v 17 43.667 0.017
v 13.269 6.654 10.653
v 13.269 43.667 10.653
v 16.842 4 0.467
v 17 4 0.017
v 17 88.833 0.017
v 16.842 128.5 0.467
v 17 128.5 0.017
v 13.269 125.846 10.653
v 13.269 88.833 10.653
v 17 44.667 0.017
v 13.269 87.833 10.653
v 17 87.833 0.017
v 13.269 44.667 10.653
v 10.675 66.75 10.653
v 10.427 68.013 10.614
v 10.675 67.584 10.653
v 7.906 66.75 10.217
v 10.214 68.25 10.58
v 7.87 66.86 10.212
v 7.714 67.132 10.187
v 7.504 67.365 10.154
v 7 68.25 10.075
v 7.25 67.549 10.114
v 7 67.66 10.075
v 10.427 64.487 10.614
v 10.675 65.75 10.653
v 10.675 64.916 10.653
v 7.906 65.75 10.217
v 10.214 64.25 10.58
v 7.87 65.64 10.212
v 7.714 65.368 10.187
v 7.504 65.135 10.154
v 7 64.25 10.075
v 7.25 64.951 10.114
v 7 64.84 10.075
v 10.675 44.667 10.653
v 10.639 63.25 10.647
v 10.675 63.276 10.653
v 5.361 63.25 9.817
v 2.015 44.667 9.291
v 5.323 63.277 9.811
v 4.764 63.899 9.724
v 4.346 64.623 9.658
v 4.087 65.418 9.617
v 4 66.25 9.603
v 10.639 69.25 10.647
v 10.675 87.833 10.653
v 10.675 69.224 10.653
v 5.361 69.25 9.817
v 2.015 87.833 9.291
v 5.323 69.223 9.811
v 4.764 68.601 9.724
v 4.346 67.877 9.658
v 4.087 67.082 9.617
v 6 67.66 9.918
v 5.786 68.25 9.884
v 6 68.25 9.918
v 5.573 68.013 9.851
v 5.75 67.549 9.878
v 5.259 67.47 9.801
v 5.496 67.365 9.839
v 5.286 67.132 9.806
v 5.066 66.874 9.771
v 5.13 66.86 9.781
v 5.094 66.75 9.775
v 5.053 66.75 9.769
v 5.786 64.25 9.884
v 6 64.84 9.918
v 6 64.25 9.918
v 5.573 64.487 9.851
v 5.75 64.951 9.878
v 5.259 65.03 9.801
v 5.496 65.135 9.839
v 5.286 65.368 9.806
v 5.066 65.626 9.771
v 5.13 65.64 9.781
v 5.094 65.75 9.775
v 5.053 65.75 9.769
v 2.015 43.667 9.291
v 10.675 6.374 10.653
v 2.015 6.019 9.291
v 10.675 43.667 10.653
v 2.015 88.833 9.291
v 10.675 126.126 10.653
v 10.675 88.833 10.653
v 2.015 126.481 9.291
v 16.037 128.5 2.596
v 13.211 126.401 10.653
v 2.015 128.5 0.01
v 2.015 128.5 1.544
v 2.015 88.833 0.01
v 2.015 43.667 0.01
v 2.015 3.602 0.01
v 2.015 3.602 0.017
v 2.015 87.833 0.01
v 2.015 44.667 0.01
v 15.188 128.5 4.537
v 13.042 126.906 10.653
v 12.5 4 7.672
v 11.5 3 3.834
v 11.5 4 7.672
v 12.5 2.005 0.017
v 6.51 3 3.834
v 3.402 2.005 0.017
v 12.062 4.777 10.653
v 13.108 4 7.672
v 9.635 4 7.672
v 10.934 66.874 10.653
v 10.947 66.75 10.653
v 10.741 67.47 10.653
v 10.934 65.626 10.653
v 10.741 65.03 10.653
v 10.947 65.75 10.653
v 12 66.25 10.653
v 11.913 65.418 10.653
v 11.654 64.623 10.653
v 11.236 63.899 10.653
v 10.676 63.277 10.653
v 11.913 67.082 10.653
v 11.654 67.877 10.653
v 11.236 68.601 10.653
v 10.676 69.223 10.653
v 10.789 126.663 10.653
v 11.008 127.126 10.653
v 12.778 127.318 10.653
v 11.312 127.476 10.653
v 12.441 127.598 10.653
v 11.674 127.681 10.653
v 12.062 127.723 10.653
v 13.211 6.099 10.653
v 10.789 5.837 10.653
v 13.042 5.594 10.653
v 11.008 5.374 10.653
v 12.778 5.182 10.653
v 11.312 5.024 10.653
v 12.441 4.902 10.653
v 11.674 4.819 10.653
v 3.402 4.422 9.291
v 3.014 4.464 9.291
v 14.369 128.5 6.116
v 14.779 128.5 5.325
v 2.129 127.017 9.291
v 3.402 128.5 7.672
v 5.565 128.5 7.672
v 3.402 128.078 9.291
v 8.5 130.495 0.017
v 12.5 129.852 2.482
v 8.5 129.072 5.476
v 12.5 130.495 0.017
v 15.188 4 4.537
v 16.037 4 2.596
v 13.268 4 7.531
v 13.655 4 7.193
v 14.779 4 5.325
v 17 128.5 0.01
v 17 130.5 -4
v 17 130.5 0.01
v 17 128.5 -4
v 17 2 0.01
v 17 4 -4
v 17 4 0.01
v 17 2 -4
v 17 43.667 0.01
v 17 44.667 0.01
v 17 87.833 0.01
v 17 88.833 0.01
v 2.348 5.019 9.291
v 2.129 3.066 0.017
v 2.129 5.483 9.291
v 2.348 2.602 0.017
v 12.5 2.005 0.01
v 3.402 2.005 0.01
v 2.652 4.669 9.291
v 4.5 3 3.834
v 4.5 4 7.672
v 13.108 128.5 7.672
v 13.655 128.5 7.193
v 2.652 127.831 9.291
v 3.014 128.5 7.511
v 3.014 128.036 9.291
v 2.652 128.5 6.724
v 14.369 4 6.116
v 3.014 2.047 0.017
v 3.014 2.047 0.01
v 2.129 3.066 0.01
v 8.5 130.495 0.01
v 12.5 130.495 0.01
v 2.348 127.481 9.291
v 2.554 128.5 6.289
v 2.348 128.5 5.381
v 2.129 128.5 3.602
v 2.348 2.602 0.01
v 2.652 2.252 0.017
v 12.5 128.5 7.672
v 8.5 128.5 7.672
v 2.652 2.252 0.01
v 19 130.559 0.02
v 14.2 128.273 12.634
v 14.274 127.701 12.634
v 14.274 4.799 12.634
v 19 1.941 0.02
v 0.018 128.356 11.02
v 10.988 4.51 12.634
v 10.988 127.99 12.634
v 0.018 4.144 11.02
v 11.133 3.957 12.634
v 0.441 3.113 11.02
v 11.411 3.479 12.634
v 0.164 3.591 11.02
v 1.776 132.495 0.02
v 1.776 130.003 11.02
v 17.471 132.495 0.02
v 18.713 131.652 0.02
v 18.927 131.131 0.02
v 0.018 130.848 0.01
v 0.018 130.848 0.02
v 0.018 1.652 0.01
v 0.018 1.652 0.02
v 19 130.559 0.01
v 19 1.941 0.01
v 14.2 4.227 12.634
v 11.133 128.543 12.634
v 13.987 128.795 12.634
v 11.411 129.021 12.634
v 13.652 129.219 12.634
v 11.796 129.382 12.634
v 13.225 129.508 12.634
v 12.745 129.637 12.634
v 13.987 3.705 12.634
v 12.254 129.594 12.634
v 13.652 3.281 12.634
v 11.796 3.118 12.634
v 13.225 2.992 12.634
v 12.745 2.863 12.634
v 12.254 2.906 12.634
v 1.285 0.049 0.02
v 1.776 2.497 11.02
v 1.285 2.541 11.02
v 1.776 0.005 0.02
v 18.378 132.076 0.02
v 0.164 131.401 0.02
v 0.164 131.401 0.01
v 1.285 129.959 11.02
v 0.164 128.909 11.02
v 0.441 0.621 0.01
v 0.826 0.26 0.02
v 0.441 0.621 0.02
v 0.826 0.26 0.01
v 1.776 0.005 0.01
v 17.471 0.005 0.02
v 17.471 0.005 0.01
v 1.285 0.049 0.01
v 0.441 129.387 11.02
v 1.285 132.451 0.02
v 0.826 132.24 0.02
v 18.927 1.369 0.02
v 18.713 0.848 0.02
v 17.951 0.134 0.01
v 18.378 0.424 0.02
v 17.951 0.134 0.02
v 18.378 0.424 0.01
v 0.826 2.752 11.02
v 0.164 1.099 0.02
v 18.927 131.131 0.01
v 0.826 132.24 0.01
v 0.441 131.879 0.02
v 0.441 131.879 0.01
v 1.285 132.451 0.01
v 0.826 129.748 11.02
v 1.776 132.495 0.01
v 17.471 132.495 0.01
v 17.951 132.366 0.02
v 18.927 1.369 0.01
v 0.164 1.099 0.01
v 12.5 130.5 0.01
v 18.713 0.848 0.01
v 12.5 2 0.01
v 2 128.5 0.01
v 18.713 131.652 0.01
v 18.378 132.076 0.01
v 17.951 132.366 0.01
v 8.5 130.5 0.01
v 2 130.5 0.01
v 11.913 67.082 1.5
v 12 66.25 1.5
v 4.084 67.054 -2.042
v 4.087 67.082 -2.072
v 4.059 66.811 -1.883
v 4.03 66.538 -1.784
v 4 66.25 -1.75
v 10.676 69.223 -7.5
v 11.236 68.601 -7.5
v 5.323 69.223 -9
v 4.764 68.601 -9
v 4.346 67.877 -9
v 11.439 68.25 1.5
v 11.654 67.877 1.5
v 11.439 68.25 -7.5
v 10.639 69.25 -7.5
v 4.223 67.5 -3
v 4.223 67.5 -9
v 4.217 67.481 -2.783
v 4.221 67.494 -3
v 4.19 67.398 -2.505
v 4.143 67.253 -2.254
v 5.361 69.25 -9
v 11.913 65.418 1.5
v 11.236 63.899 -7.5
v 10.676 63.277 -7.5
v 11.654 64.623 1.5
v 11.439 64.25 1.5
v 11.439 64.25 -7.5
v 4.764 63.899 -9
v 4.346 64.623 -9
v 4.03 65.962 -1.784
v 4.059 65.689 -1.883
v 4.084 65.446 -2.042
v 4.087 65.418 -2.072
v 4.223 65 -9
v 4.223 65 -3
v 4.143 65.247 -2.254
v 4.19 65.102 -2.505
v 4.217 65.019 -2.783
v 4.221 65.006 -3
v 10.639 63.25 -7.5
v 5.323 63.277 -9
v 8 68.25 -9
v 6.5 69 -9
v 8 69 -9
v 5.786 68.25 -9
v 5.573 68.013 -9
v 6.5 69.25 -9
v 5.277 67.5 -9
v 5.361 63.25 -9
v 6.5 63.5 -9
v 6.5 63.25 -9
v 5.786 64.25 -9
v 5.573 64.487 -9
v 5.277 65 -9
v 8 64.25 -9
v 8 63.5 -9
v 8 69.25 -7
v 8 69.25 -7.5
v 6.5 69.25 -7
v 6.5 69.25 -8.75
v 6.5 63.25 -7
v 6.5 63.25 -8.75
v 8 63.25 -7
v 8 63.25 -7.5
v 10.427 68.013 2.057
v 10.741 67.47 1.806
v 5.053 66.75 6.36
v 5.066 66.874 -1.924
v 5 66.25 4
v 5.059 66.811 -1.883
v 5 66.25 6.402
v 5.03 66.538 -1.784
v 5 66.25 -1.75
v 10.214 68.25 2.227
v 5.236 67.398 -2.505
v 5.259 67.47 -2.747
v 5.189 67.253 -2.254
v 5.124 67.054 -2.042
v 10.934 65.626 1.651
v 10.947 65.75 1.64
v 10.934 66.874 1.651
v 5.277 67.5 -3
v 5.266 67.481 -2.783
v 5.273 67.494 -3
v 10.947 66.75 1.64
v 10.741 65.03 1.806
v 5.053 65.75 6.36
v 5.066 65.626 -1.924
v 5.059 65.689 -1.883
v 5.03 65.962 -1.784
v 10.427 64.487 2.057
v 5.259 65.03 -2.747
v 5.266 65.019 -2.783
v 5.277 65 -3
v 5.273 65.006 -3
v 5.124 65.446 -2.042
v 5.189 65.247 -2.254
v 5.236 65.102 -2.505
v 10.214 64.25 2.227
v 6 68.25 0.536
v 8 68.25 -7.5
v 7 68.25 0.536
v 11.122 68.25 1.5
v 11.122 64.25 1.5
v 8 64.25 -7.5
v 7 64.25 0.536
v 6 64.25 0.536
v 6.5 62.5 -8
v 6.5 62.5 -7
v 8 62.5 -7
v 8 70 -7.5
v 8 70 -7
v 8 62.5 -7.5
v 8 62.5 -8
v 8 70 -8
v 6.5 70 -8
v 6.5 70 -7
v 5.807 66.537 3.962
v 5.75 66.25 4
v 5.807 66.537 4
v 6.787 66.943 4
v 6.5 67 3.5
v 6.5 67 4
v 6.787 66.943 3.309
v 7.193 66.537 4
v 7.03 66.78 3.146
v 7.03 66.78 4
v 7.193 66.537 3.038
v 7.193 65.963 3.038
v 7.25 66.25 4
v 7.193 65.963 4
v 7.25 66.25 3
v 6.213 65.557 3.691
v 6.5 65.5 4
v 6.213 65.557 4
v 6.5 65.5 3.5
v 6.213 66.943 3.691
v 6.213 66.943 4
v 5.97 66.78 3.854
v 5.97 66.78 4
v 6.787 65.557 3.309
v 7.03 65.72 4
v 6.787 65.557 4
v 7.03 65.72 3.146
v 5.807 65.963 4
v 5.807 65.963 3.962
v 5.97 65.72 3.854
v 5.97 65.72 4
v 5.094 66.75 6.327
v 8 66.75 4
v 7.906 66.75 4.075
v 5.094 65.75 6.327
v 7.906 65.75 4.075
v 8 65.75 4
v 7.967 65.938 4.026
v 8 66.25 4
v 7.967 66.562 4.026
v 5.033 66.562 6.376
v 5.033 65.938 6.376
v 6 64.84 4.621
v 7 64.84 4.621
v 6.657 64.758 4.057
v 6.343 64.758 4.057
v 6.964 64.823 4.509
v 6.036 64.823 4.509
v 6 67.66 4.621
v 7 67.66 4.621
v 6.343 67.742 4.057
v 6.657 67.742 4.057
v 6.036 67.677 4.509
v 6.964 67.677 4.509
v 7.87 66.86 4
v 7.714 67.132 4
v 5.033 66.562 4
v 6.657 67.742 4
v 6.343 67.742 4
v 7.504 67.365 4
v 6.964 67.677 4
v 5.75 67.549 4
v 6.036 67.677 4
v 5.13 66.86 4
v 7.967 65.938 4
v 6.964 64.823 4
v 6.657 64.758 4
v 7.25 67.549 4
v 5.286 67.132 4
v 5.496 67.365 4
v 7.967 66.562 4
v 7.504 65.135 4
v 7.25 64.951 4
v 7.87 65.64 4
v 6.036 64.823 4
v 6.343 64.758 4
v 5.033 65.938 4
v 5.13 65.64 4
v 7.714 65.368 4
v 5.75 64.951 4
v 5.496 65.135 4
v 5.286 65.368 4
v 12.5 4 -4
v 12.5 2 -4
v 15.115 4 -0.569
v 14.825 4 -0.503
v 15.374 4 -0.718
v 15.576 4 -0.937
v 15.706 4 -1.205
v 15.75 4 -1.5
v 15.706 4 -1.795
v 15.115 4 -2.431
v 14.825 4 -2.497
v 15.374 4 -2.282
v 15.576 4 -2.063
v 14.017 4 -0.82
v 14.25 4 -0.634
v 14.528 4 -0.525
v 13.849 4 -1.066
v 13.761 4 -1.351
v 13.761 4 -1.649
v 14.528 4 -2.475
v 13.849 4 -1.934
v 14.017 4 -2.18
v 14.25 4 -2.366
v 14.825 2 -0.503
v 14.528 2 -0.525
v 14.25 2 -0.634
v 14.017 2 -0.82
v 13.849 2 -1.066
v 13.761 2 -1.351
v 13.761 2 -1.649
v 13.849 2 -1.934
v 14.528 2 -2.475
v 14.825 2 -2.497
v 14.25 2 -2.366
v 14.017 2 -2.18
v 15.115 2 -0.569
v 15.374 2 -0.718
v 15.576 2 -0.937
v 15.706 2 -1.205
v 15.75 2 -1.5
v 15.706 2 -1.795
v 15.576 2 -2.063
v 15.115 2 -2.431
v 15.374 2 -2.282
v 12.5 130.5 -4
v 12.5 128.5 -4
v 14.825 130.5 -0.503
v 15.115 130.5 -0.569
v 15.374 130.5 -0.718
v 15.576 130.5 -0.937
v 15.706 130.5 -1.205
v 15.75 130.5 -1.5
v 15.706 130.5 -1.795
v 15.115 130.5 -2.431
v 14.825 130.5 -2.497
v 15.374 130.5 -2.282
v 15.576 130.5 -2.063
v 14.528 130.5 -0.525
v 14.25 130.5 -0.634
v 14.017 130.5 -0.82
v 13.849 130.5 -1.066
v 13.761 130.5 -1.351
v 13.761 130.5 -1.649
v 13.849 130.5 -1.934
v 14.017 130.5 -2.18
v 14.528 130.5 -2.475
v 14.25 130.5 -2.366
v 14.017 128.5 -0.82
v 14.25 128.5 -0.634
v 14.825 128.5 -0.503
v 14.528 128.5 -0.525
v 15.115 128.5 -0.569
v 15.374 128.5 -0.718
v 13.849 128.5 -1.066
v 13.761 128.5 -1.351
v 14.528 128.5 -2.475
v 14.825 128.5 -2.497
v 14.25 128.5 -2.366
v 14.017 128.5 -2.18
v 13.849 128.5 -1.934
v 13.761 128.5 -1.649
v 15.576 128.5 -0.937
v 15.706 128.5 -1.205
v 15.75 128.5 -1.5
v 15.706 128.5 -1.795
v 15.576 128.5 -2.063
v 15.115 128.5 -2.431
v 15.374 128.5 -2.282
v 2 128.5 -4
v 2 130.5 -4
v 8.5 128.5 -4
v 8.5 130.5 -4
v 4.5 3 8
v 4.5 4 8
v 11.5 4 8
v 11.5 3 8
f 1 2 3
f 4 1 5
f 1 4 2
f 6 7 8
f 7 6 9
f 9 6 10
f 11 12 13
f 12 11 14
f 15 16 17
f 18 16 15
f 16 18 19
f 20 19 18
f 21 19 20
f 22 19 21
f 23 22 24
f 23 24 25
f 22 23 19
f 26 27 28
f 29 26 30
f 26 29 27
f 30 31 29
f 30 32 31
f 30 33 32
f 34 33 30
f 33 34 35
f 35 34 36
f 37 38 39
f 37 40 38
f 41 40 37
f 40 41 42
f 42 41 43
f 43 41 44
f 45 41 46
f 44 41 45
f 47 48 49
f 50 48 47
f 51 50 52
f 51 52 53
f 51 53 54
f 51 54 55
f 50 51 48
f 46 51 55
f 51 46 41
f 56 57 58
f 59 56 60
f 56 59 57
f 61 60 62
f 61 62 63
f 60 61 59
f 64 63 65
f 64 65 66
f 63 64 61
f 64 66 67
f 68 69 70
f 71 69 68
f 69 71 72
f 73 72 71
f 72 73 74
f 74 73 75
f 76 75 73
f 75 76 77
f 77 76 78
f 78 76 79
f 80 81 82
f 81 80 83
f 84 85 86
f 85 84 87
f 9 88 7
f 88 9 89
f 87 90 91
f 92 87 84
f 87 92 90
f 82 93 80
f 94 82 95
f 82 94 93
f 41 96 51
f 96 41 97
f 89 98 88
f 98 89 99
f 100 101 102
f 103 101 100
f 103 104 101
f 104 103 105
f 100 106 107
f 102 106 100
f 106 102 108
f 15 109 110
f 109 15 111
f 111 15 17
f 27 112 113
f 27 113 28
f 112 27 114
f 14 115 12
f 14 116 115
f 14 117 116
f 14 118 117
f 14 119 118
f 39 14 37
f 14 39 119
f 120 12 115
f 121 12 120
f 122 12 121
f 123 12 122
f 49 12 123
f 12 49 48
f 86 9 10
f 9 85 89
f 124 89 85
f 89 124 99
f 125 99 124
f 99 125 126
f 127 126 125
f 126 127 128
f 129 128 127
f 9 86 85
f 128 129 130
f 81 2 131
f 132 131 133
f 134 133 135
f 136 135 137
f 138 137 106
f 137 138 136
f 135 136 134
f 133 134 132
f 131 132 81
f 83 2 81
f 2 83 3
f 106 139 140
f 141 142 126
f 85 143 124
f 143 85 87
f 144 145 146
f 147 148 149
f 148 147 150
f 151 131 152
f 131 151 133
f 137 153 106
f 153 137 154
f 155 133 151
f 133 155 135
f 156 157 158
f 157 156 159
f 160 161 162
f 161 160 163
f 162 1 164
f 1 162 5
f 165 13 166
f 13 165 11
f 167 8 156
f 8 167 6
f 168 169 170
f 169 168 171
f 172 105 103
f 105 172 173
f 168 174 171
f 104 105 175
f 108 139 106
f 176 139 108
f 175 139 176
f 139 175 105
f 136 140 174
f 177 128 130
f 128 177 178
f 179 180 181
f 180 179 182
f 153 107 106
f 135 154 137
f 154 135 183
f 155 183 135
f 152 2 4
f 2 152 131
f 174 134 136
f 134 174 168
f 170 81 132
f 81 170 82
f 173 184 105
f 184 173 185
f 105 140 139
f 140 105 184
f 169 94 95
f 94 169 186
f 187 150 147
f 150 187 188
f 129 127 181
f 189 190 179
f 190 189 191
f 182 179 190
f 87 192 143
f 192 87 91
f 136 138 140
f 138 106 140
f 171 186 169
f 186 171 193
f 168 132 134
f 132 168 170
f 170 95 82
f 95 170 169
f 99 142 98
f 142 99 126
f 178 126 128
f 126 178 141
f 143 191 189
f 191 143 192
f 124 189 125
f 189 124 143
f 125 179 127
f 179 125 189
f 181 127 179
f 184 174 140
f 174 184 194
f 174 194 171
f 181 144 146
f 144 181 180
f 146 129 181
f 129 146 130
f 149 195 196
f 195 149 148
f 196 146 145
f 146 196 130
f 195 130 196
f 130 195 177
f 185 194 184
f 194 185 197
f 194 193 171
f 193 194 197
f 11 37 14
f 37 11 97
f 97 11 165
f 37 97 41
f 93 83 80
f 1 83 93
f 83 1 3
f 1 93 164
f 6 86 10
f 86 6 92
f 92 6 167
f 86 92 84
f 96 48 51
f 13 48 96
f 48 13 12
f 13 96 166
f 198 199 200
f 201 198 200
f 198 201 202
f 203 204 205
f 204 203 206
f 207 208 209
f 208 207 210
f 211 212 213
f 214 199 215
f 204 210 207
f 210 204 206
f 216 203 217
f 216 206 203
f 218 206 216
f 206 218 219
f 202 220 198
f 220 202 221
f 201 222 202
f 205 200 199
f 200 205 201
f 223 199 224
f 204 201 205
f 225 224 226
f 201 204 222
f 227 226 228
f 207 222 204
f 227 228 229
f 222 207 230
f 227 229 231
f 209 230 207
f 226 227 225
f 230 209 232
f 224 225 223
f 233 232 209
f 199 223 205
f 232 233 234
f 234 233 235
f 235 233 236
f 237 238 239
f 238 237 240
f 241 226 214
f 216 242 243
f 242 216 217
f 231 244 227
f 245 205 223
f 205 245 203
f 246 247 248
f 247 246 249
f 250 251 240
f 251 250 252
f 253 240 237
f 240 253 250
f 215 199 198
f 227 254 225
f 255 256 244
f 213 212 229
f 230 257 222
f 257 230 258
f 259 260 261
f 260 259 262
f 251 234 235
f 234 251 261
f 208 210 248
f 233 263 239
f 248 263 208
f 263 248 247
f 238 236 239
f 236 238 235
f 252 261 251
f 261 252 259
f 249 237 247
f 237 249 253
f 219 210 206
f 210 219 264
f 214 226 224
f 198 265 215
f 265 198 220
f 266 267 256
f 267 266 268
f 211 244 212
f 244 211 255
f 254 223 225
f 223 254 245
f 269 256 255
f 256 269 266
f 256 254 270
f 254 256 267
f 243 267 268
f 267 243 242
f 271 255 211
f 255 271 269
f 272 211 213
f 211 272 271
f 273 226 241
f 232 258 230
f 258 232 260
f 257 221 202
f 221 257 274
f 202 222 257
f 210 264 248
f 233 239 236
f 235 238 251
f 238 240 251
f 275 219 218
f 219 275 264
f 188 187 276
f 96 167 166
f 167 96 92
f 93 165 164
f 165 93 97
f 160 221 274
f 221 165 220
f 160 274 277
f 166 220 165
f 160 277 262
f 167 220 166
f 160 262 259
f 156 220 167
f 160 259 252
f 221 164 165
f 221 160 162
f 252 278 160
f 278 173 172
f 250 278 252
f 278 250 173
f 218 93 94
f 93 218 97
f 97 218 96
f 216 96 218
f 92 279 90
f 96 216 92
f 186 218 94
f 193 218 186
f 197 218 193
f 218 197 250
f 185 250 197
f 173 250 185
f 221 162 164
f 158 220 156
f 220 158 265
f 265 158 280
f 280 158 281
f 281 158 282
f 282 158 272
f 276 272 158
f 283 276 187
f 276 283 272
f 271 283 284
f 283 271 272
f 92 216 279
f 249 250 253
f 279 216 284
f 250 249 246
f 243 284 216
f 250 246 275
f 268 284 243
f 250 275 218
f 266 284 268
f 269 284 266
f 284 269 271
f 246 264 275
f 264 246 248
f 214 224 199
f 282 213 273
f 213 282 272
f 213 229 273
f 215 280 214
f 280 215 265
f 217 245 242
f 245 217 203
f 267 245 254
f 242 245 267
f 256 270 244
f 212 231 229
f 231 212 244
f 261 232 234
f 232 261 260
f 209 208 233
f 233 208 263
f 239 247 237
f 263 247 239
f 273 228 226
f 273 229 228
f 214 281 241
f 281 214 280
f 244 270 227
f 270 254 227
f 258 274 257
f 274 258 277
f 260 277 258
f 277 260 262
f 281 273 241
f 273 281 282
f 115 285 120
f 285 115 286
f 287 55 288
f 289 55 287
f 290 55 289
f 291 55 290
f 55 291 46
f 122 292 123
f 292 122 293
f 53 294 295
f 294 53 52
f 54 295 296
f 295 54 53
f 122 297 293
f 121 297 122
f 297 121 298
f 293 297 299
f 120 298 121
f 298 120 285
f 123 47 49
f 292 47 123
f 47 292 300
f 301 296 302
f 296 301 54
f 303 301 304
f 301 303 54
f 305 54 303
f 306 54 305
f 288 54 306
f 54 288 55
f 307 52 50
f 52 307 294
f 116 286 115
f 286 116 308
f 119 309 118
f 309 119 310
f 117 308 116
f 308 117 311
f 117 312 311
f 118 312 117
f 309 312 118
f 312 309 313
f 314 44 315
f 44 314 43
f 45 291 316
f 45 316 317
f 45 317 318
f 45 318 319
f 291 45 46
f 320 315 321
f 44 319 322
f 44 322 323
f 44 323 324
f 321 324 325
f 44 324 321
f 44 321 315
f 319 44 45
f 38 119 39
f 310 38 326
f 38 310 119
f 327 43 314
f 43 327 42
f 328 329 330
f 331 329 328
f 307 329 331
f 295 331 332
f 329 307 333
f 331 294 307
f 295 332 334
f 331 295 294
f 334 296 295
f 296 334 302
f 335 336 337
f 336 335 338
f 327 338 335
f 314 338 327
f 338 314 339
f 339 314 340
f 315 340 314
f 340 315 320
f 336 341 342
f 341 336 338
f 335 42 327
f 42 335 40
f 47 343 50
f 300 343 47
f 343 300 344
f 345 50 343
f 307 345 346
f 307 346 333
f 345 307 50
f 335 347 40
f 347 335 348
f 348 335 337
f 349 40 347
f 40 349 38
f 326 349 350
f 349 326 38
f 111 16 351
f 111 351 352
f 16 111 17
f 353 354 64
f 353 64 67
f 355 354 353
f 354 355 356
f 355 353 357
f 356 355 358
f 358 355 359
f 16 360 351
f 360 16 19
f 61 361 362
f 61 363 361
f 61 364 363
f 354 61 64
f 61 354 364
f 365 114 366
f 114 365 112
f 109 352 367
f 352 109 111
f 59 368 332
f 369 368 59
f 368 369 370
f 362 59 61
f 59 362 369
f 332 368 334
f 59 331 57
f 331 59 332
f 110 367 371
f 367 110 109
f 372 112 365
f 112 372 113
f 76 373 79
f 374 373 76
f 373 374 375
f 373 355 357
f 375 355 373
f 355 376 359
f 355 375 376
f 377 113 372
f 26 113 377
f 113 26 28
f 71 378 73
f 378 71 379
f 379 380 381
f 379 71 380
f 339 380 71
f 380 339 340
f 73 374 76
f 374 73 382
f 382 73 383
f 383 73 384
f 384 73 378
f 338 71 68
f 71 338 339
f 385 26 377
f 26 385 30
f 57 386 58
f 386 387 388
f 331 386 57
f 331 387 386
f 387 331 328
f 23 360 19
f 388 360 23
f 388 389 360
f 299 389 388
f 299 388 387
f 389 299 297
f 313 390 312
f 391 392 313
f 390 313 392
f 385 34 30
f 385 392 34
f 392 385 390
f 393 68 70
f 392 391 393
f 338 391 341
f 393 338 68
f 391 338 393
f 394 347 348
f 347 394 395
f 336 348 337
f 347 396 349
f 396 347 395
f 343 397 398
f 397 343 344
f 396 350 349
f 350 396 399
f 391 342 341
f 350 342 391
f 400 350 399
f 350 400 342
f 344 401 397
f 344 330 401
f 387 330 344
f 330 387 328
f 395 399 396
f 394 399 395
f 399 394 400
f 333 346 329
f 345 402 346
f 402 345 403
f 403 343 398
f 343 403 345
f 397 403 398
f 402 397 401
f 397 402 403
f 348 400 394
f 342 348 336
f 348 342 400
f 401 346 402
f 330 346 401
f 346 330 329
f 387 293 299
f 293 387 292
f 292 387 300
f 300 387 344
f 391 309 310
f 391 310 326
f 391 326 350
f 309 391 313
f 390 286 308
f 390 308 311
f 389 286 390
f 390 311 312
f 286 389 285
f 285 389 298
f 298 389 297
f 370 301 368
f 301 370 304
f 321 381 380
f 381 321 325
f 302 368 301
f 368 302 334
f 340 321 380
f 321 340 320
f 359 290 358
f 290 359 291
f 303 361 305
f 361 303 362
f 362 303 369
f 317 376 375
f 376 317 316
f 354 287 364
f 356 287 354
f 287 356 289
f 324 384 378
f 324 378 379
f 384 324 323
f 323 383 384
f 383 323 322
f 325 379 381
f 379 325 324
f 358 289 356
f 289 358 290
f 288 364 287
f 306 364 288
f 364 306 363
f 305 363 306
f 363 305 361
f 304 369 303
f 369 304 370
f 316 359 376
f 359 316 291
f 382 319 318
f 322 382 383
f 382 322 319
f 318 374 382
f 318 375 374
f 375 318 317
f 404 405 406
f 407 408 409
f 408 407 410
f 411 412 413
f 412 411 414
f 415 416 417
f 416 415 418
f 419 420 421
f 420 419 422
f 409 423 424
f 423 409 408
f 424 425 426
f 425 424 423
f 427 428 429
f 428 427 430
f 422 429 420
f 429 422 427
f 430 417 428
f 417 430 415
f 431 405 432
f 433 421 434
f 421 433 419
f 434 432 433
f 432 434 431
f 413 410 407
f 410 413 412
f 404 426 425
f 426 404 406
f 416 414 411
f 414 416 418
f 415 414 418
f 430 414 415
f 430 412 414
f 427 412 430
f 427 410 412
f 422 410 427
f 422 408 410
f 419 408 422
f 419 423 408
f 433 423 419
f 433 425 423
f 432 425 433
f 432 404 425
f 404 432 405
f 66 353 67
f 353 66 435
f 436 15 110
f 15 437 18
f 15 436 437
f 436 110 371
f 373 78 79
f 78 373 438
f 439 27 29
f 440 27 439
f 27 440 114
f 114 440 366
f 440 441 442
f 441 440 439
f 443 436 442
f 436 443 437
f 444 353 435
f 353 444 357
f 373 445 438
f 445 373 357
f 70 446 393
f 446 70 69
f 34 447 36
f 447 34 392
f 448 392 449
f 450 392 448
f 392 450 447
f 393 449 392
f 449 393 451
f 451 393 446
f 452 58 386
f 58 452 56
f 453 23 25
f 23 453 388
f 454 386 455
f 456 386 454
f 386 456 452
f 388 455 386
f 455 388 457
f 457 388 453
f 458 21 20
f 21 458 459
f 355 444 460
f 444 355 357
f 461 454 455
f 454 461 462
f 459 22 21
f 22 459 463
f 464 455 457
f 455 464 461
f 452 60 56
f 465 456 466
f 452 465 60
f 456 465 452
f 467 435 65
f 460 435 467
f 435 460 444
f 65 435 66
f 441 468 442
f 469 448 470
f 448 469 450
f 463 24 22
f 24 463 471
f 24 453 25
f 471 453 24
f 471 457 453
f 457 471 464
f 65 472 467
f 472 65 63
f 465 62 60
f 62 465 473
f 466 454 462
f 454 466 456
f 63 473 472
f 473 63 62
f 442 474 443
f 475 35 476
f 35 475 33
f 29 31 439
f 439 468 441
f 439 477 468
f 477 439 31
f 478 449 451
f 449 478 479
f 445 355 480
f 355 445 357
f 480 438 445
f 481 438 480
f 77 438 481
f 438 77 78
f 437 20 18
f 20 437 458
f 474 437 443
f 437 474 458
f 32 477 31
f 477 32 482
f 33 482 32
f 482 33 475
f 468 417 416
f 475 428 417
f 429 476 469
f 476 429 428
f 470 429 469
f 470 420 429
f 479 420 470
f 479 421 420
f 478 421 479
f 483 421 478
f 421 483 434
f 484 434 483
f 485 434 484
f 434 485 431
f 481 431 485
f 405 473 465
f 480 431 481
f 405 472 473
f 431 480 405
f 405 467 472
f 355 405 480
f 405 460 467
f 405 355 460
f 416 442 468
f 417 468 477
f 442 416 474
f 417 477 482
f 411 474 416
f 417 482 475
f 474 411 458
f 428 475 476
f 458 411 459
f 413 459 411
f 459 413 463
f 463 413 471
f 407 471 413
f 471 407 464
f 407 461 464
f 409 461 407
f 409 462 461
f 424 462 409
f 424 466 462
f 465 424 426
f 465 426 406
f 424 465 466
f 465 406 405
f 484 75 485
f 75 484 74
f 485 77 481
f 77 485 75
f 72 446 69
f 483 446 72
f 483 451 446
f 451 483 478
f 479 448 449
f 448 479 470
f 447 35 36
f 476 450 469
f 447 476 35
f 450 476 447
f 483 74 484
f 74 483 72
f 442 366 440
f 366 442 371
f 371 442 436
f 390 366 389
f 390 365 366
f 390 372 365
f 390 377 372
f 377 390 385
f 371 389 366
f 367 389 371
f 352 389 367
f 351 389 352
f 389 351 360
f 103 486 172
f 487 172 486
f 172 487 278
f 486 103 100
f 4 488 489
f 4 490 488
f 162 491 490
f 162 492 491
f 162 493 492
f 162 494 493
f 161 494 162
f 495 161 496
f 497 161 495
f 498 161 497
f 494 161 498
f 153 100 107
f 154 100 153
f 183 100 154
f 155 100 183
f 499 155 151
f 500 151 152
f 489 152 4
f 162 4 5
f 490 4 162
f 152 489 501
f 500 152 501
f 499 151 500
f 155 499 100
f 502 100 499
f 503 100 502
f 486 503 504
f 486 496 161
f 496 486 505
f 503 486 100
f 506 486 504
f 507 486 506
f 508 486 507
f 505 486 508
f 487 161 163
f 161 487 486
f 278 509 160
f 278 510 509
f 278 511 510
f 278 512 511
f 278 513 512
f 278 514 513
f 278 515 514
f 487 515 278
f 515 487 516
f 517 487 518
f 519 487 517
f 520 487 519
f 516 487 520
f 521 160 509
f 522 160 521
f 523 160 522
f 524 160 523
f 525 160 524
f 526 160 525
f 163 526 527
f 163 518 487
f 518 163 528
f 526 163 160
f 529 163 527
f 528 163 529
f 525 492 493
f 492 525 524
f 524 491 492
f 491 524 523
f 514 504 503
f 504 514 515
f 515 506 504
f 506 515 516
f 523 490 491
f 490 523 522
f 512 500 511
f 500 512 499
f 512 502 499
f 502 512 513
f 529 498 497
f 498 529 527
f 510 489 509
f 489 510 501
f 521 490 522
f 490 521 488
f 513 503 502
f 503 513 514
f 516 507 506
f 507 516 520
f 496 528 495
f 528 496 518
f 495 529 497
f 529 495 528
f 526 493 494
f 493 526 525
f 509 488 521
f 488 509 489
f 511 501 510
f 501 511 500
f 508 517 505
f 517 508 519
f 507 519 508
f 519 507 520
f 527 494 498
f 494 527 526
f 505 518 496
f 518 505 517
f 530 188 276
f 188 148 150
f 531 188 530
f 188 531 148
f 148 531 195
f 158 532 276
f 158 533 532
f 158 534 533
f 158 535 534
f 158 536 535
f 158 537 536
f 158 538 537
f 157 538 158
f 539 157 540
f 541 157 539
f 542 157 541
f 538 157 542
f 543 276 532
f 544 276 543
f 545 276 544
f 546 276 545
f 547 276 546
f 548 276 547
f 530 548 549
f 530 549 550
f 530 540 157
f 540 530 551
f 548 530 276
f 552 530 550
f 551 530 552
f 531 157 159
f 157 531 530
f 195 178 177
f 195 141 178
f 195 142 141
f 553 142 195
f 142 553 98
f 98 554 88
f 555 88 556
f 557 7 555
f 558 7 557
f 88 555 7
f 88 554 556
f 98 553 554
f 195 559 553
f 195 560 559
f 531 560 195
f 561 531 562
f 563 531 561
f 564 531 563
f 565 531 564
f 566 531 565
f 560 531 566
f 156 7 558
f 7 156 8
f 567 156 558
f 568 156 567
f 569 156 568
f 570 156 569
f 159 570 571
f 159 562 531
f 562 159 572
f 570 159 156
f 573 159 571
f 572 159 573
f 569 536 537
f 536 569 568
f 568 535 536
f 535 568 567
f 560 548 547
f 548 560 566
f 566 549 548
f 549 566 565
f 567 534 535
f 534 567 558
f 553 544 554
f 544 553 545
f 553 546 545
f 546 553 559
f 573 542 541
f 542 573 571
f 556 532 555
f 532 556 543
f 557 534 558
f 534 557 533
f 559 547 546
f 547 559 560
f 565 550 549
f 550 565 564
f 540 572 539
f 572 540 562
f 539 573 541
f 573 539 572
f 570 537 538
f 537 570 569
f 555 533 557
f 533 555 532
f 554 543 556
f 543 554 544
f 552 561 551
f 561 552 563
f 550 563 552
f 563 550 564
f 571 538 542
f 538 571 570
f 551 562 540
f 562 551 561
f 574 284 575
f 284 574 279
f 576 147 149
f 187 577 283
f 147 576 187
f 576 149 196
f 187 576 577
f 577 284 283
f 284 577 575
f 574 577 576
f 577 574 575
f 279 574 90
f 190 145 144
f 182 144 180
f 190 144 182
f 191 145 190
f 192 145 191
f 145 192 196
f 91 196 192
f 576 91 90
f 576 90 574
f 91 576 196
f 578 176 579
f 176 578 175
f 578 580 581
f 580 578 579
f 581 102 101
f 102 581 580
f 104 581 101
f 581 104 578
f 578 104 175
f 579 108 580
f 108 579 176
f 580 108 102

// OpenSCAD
//measures are in millimeters
//(feel free to cocnvert them to attoparsecs)
AY=132.5;
AX=19.0;
BY=127.5;
BLX=14.5;
EZ=11.0;
FLZ=14.0;
H=12.75;
SHAFT_OFF_Y=AY/2;
SHAFT_OFF_X=8.0; //???
CLIP_X=2;
CLIP_Y=0.75;
CLIP_H=3*CLIP_Y;
CORNER_RADIUS=2;
SHAFT_X=8.0;
SHAFT_Y=6.0;
SHAFT_LENGTH=9.0;
SHAFT_THICKNESS=1.0;
SHAFT_CLIP_WIDTH=3.0;
SHAFT_CLIP_THICKNESS=0.75;
SHAFT_CLIP_HEIGHT=2.0;
SHAFT_CLIP_SLOPE_DEPTH=1.0;
SHAFT_CLIP_ANGLE=45;
SHAFT_END_CUTOUT_HEIGHT=1.5;
SHAFT_LARGE_SLOT_TO_BASE=1.5;
SHAFT_SMALL_SLOT_LENGTH=7.25;
SHAFT_SMALL_SLOT_WIDTH=2.5;
SHAFT_SPRING_HOLDER_WIDTH=3.0;
SHAFT_SPRING_HOLDER_TO_BASE=4.0;
SHAFT_SPRING_GUIDE_WIDTH=1.0;
SHAFT_SPRING_GUIDE_SIDES_HEIGHT=3.5;
STRUT_THICKNESS=1;
STRUT_HEIGHT=3;
STRUT_SPACING=1;
SHAFT_SPRING_HOLDER_NIPPLE_HEIGHT=1;
SHAFT_SPRING_HOLDER_NIPPLE_RADIUS=0.75;

WIRE_HOLDER_HEIGHT=4.0;
WIRE_HOLDER_WIDTH=4.5;
WIRE_DIAMETER=2.0;
WIRE_HOLE_OFF_Z=0.5;

MYSTERIOUS_TAB_WIDTH=6.5;
MYSTERIOUS_TAB_HEIGHT=5.5;

SHAFT_SMALL_SLOT_BEVEL=0.5;

WallThickness=2.0;
ClipWidth=2.2;
ClipDepth=0.75;

//ascfront=FLZ/sqrt(pow(FLZ,2)-pow(H,2));
//asctop=(H-EZ)/sqrt(pow(BLX,2)-pow((H-EZ),2));

alpha=asin((H-EZ)/BLX);
beta=asin(H/FLZ);
gamma=90-asin((0.5*(AY-BY))/EZ);


module keycap(){
	scale([AX/(AX+2*CORNER_RADIUS),AY/(AY+2*CORNER_RADIUS),1])
	translate([CORNER_RADIUS,CORNER_RADIUS,0.01])
	minkowski(){
		difference(){
			cube([AX,AY,H]);
			rotate(a=gamma,v=[1,0,0]) cube([200,200,200]);
			translate([0,AY,0]) rotate(a=90-gamma,v=[1,0,0]) cube([200,200,200]);
			translate([0,0,EZ]) rotate(a=-alpha,v=[0,1,0]) translate([-100,0,0]) cube([200,200,200]);
			translate([AX,0,0]) rotate(a=beta-90,v=[0,1,0]) cube([200,200,200]);
		}
		cylinder(h=0.01,r=CORNER_RADIUS,$fs=0.6);
		//rotate(a=90,v=[1,0,0]) cylinder(h=0.01,r=1,$fs=0.3);
	}
}

module shaft(){
	spring_guide_length = SHAFT_X-SHAFT_THICKNESS-SHAFT_SPRING_HOLDER_WIDTH;
	spring_guide_height = SHAFT_SPRING_HOLDER_TO_BASE-SHAFT_LARGE_SLOT_TO_BASE;
	translate([0,0,-SHAFT_LENGTH]) difference(){
		union(){
			difference(){
				union(){
					difference(){
						intersection(){
							cylinder(h=200,r=SHAFT_X/2,$fs=0.3);
							translate([-SHAFT_X/2,-SHAFT_Y/2,0]) cube([SHAFT_X,SHAFT_Y,200]);
						}
						intersection(){
							cylinder(h=200,r=SHAFT_X/2-SHAFT_THICKNESS,$fs=0.3);
							translate([-SHAFT_X/2+SHAFT_THICKNESS,-SHAFT_Y/2+SHAFT_THICKNESS,0]) cube([SHAFT_X-2*SHAFT_THICKNESS,SHAFT_Y-2*SHAFT_THICKNESS,200]);
						}
					}
					translate([-SHAFT_CLIP_WIDTH/2, -SHAFT_CLIP_THICKNESS-SHAFT_Y/2,0]) cube([SHAFT_CLIP_WIDTH/2, SHAFT_CLIP_THICKNESS,SHAFT_CLIP_HEIGHT]);
					translate([-SHAFT_CLIP_WIDTH/2, SHAFT_Y/2,0]) cube([SHAFT_CLIP_WIDTH/2, SHAFT_CLIP_THICKNESS,SHAFT_CLIP_HEIGHT]);
				}
				translate([-SHAFT_CLIP_WIDTH/2, -SHAFT_CLIP_THICKNESS-SHAFT_Y/2+SHAFT_CLIP_SLOPE_DEPTH,0]) rotate(a=90+SHAFT_CLIP_ANGLE,v=[1,0,0]) cube([SHAFT_CLIP_WIDTH/2,200,200]);
				translate([-SHAFT_CLIP_WIDTH/2, SHAFT_Y/2+SHAFT_CLIP_THICKNESS-SHAFT_CLIP_SLOPE_DEPTH,0]) mirror([0,1,0]) rotate(a=90+SHAFT_CLIP_ANGLE,v=[1,0,0]) cube([SHAFT_CLIP_WIDTH/2,200,200]);
				translate([0,-100,0]) cube([200,200,SHAFT_END_CUTOUT_HEIGHT]);
				translate([0,-SHAFT_Y/2+SHAFT_THICKNESS,0]) cube([200,SHAFT_Y-SHAFT_THICKNESS*2,SHAFT_LENGTH+SHAFT_LARGE_SLOT_TO_BASE]);
				//small slot cutout
				translate([0,-SHAFT_SMALL_SLOT_WIDTH/2,0]){
					mirror([1,0,0]) cube([200,SHAFT_SMALL_SLOT_WIDTH,SHAFT_SMALL_SLOT_LENGTH-0.5*SHAFT_SMALL_SLOT_WIDTH]);
				}
				//small slot cutout
				translate([0,0,SHAFT_SMALL_SLOT_LENGTH-0.5*SHAFT_SMALL_SLOT_WIDTH]) rotate(a=-90,v=[0,1,0]) cylinder(r=SHAFT_SMALL_SLOT_WIDTH/2,h=SHAFT_X/2,$fs=0.3);
			}
			//spring holder
			translate([-SHAFT_X/2+SHAFT_SPRING_HOLDER_WIDTH/2+SHAFT_THICKNESS,0,SHAFT_LENGTH+SHAFT_SPRING_HOLDER_TO_BASE]) cylinder(r=SHAFT_SPRING_HOLDER_WIDTH/2,h=200,$fs=0.3);
			intersection(){
				translate([-SHAFT_X/2+SHAFT_SPRING_HOLDER_WIDTH/2+SHAFT_THICKNESS,0,SHAFT_LENGTH+SHAFT_SPRING_HOLDER_TO_BASE-SHAFT_SPRING_HOLDER_NIPPLE_HEIGHT]) cylinder(r=SHAFT_SPRING_HOLDER_NIPPLE_RADIUS,h=200,$fs=0.3);
				translate([0,0,SHAFT_LENGTH+SHAFT_SPRING_HOLDER_TO_BASE-SHAFT_SPRING_HOLDER_NIPPLE_HEIGHT*1.5]) rotate(a=atan(SHAFT_SPRING_HOLDER_NIPPLE_HEIGHT/(SHAFT_SPRING_HOLDER_NIPPLE_RADIUS*2)), v=[0,1,0]) translate([-100,-100,0]) cube([200,200,200]);
			}
			intersection(){
				difference(){
					translate([SHAFT_X/2-SHAFT_THICKNESS,-0.5*SHAFT_SPRING_GUIDE_WIDTH,SHAFT_LENGTH+SHAFT_LARGE_SLOT_TO_BASE]) mirror([1,0,0]) cube([200,SHAFT_SPRING_GUIDE_WIDTH,200]);
					translate([-SHAFT_X/2+SHAFT_SPRING_HOLDER_WIDTH+SHAFT_THICKNESS,-0.5*SHAFT_SPRING_GUIDE_WIDTH,SHAFT_LENGTH+SHAFT_SPRING_HOLDER_TO_BASE])
					mirror([1,0,0]) rotate(a=90-asin(spring_guide_height/spring_guide_length),v=[0,1,0]) mirror([0,0,1]) translate([0,0,-100]) cube([200,SHAFT_SPRING_GUIDE_WIDTH,200]);
				}
				cube([SHAFT_X-SHAFT_THICKNESS,SHAFT_Y,200],center=true);
			}
			//side spring guides
			difference(){
				translate([-SHAFT_X/2+SHAFT_THICKNESS+(SHAFT_SPRING_HOLDER_WIDTH-SHAFT_SPRING_GUIDE_WIDTH)/2,-SHAFT_Y/2+SHAFT_THICKNESS,SHAFT_LENGTH+SHAFT_SPRING_HOLDER_TO_BASE-SHAFT_SPRING_GUIDE_SIDES_HEIGHT]) cube([SHAFT_SPRING_GUIDE_WIDTH,SHAFT_Y-2*SHAFT_THICKNESS,EZ-SHAFT_SPRING_HOLDER_TO_BASE+SHAFT_SPRING_GUIDE_SIDES_HEIGHT]);
				translate([-SHAFT_X/2+SHAFT_THICKNESS+(SHAFT_SPRING_HOLDER_WIDTH-SHAFT_SPRING_GUIDE_WIDTH)/2,-SHAFT_SPRING_HOLDER_WIDTH/2,SHAFT_LENGTH+SHAFT_SPRING_HOLDER_TO_BASE]) rotate(a=-asin(((SHAFT_Y-SHAFT_SPRING_HOLDER_WIDTH)/2-SHAFT_THICKNESS)/SHAFT_SPRING_GUIDE_SIDES_HEIGHT),v=[1,0,0]) translate([0,0,-100]) cube([SHAFT_SPRING_GUIDE_WIDTH,200,200]);
			}
			difference(){
				translate([-SHAFT_X/2+SHAFT_THICKNESS+(SHAFT_SPRING_HOLDER_WIDTH-SHAFT_SPRING_GUIDE_WIDTH)/2,-SHAFT_Y/2+SHAFT_THICKNESS,SHAFT_LENGTH+SHAFT_SPRING_HOLDER_TO_BASE-SHAFT_SPRING_GUIDE_SIDES_HEIGHT]) cube([SHAFT_SPRING_GUIDE_WIDTH,SHAFT_Y-2*SHAFT_THICKNESS,EZ-SHAFT_SPRING_HOLDER_TO_BASE+SHAFT_SPRING_GUIDE_SIDES_HEIGHT]);
				mirror([0,1,0]) translate([-SHAFT_X/2+SHAFT_THICKNESS+(SHAFT_SPRING_HOLDER_WIDTH-SHAFT_SPRING_GUIDE_WIDTH)/2,-SHAFT_SPRING_HOLDER_WIDTH/2,SHAFT_LENGTH+SHAFT_SPRING_HOLDER_TO_BASE]) rotate(a=-asin(((SHAFT_Y-SHAFT_SPRING_HOLDER_WIDTH)/2-SHAFT_THICKNESS)/SHAFT_SPRING_GUIDE_SIDES_HEIGHT),v=[1,0,0]) translate([0,0,-100]) cube([SHAFT_SPRING_GUIDE_WIDTH,200,200]);
			}
		}
		translate([-SHAFT_X/2+SHAFT_SPRING_HOLDER_WIDTH+SHAFT_THICKNESS,-SHAFT_Y/2+SHAFT_THICKNESS,SHAFT_LENGTH+SHAFT_SPRING_HOLDER_TO_BASE]) mirror([1,0,0]) rotate(a=90-asin(spring_guide_height/spring_guide_length),v=[0,1,0]) mirror([0,0,1]) cube([SHAFT_THICKNESS,SHAFT_Y-2*SHAFT_THICKNESS,200]);
	}
}

difference(){
union(){

difference(){
	keycap();
	difference(){
		translate([WallThickness, WallThickness, 0]) scale(v=[1-2*WallThickness/AX, 1-2*WallThickness/AY, 1-WallThickness/H]) keycap();
		translate([0,AY/3,0]) cube([200,STRUT_THICKNESS,200],center=true);
		translate([0,2*AY/3,0]) cube([200,STRUT_THICKNESS,200],center=true);
	}
}
intersection(){
	union(){
		translate([WallThickness, WallThickness, 0]) scale(v=[1-2*WallThickness/AX, 1-2*WallThickness/AY, 1-WallThickness/H]) keycap();
		translate([-200,-200,-399.9]) cube([400,400,400]);
	}
	union(){
		translate([SHAFT_OFF_X,SHAFT_OFF_Y]) shaft();
		translate([AX-WIRE_HOLDER_WIDTH-WallThickness, WallThickness, -WIRE_HOLDER_HEIGHT]) difference(){
			cube([WIRE_HOLDER_WIDTH,WallThickness,WIRE_HOLDER_HEIGHT+H]);
			translate([WIRE_HOLDER_WIDTH/2,WallThickness*1.5,WIRE_HOLDER_HEIGHT-WIRE_DIAMETER/2-WIRE_HOLE_OFF_Z]) rotate([90,0,0]) cylinder(r=WIRE_DIAMETER/2,h=WallThickness*2,$fs=0.3);
		}
		translate([AX-WIRE_HOLDER_WIDTH-WallThickness, AY-2*WallThickness, -WIRE_HOLDER_HEIGHT]) difference(){
			cube([WIRE_HOLDER_WIDTH,WallThickness,WIRE_HOLDER_HEIGHT+H]);
			translate([WIRE_HOLDER_WIDTH/2,WallThickness*1.5,WIRE_HOLDER_HEIGHT-WIRE_DIAMETER/2-WIRE_HOLE_OFF_Z]) rotate([90,0,0]) cylinder(r=WIRE_DIAMETER/2,h=WallThickness*2,$fs=0.3);
		}
		translate([WallThickness, AY-2*WallThickness, -WIRE_HOLDER_HEIGHT]) cube([MYSTERIOUS_TAB_WIDTH,WallThickness,H+MYSTERIOUS_TAB_HEIGHT]);
	}
}

}
translate([4.5,3,0]) cube ([7,1,8]);
}
